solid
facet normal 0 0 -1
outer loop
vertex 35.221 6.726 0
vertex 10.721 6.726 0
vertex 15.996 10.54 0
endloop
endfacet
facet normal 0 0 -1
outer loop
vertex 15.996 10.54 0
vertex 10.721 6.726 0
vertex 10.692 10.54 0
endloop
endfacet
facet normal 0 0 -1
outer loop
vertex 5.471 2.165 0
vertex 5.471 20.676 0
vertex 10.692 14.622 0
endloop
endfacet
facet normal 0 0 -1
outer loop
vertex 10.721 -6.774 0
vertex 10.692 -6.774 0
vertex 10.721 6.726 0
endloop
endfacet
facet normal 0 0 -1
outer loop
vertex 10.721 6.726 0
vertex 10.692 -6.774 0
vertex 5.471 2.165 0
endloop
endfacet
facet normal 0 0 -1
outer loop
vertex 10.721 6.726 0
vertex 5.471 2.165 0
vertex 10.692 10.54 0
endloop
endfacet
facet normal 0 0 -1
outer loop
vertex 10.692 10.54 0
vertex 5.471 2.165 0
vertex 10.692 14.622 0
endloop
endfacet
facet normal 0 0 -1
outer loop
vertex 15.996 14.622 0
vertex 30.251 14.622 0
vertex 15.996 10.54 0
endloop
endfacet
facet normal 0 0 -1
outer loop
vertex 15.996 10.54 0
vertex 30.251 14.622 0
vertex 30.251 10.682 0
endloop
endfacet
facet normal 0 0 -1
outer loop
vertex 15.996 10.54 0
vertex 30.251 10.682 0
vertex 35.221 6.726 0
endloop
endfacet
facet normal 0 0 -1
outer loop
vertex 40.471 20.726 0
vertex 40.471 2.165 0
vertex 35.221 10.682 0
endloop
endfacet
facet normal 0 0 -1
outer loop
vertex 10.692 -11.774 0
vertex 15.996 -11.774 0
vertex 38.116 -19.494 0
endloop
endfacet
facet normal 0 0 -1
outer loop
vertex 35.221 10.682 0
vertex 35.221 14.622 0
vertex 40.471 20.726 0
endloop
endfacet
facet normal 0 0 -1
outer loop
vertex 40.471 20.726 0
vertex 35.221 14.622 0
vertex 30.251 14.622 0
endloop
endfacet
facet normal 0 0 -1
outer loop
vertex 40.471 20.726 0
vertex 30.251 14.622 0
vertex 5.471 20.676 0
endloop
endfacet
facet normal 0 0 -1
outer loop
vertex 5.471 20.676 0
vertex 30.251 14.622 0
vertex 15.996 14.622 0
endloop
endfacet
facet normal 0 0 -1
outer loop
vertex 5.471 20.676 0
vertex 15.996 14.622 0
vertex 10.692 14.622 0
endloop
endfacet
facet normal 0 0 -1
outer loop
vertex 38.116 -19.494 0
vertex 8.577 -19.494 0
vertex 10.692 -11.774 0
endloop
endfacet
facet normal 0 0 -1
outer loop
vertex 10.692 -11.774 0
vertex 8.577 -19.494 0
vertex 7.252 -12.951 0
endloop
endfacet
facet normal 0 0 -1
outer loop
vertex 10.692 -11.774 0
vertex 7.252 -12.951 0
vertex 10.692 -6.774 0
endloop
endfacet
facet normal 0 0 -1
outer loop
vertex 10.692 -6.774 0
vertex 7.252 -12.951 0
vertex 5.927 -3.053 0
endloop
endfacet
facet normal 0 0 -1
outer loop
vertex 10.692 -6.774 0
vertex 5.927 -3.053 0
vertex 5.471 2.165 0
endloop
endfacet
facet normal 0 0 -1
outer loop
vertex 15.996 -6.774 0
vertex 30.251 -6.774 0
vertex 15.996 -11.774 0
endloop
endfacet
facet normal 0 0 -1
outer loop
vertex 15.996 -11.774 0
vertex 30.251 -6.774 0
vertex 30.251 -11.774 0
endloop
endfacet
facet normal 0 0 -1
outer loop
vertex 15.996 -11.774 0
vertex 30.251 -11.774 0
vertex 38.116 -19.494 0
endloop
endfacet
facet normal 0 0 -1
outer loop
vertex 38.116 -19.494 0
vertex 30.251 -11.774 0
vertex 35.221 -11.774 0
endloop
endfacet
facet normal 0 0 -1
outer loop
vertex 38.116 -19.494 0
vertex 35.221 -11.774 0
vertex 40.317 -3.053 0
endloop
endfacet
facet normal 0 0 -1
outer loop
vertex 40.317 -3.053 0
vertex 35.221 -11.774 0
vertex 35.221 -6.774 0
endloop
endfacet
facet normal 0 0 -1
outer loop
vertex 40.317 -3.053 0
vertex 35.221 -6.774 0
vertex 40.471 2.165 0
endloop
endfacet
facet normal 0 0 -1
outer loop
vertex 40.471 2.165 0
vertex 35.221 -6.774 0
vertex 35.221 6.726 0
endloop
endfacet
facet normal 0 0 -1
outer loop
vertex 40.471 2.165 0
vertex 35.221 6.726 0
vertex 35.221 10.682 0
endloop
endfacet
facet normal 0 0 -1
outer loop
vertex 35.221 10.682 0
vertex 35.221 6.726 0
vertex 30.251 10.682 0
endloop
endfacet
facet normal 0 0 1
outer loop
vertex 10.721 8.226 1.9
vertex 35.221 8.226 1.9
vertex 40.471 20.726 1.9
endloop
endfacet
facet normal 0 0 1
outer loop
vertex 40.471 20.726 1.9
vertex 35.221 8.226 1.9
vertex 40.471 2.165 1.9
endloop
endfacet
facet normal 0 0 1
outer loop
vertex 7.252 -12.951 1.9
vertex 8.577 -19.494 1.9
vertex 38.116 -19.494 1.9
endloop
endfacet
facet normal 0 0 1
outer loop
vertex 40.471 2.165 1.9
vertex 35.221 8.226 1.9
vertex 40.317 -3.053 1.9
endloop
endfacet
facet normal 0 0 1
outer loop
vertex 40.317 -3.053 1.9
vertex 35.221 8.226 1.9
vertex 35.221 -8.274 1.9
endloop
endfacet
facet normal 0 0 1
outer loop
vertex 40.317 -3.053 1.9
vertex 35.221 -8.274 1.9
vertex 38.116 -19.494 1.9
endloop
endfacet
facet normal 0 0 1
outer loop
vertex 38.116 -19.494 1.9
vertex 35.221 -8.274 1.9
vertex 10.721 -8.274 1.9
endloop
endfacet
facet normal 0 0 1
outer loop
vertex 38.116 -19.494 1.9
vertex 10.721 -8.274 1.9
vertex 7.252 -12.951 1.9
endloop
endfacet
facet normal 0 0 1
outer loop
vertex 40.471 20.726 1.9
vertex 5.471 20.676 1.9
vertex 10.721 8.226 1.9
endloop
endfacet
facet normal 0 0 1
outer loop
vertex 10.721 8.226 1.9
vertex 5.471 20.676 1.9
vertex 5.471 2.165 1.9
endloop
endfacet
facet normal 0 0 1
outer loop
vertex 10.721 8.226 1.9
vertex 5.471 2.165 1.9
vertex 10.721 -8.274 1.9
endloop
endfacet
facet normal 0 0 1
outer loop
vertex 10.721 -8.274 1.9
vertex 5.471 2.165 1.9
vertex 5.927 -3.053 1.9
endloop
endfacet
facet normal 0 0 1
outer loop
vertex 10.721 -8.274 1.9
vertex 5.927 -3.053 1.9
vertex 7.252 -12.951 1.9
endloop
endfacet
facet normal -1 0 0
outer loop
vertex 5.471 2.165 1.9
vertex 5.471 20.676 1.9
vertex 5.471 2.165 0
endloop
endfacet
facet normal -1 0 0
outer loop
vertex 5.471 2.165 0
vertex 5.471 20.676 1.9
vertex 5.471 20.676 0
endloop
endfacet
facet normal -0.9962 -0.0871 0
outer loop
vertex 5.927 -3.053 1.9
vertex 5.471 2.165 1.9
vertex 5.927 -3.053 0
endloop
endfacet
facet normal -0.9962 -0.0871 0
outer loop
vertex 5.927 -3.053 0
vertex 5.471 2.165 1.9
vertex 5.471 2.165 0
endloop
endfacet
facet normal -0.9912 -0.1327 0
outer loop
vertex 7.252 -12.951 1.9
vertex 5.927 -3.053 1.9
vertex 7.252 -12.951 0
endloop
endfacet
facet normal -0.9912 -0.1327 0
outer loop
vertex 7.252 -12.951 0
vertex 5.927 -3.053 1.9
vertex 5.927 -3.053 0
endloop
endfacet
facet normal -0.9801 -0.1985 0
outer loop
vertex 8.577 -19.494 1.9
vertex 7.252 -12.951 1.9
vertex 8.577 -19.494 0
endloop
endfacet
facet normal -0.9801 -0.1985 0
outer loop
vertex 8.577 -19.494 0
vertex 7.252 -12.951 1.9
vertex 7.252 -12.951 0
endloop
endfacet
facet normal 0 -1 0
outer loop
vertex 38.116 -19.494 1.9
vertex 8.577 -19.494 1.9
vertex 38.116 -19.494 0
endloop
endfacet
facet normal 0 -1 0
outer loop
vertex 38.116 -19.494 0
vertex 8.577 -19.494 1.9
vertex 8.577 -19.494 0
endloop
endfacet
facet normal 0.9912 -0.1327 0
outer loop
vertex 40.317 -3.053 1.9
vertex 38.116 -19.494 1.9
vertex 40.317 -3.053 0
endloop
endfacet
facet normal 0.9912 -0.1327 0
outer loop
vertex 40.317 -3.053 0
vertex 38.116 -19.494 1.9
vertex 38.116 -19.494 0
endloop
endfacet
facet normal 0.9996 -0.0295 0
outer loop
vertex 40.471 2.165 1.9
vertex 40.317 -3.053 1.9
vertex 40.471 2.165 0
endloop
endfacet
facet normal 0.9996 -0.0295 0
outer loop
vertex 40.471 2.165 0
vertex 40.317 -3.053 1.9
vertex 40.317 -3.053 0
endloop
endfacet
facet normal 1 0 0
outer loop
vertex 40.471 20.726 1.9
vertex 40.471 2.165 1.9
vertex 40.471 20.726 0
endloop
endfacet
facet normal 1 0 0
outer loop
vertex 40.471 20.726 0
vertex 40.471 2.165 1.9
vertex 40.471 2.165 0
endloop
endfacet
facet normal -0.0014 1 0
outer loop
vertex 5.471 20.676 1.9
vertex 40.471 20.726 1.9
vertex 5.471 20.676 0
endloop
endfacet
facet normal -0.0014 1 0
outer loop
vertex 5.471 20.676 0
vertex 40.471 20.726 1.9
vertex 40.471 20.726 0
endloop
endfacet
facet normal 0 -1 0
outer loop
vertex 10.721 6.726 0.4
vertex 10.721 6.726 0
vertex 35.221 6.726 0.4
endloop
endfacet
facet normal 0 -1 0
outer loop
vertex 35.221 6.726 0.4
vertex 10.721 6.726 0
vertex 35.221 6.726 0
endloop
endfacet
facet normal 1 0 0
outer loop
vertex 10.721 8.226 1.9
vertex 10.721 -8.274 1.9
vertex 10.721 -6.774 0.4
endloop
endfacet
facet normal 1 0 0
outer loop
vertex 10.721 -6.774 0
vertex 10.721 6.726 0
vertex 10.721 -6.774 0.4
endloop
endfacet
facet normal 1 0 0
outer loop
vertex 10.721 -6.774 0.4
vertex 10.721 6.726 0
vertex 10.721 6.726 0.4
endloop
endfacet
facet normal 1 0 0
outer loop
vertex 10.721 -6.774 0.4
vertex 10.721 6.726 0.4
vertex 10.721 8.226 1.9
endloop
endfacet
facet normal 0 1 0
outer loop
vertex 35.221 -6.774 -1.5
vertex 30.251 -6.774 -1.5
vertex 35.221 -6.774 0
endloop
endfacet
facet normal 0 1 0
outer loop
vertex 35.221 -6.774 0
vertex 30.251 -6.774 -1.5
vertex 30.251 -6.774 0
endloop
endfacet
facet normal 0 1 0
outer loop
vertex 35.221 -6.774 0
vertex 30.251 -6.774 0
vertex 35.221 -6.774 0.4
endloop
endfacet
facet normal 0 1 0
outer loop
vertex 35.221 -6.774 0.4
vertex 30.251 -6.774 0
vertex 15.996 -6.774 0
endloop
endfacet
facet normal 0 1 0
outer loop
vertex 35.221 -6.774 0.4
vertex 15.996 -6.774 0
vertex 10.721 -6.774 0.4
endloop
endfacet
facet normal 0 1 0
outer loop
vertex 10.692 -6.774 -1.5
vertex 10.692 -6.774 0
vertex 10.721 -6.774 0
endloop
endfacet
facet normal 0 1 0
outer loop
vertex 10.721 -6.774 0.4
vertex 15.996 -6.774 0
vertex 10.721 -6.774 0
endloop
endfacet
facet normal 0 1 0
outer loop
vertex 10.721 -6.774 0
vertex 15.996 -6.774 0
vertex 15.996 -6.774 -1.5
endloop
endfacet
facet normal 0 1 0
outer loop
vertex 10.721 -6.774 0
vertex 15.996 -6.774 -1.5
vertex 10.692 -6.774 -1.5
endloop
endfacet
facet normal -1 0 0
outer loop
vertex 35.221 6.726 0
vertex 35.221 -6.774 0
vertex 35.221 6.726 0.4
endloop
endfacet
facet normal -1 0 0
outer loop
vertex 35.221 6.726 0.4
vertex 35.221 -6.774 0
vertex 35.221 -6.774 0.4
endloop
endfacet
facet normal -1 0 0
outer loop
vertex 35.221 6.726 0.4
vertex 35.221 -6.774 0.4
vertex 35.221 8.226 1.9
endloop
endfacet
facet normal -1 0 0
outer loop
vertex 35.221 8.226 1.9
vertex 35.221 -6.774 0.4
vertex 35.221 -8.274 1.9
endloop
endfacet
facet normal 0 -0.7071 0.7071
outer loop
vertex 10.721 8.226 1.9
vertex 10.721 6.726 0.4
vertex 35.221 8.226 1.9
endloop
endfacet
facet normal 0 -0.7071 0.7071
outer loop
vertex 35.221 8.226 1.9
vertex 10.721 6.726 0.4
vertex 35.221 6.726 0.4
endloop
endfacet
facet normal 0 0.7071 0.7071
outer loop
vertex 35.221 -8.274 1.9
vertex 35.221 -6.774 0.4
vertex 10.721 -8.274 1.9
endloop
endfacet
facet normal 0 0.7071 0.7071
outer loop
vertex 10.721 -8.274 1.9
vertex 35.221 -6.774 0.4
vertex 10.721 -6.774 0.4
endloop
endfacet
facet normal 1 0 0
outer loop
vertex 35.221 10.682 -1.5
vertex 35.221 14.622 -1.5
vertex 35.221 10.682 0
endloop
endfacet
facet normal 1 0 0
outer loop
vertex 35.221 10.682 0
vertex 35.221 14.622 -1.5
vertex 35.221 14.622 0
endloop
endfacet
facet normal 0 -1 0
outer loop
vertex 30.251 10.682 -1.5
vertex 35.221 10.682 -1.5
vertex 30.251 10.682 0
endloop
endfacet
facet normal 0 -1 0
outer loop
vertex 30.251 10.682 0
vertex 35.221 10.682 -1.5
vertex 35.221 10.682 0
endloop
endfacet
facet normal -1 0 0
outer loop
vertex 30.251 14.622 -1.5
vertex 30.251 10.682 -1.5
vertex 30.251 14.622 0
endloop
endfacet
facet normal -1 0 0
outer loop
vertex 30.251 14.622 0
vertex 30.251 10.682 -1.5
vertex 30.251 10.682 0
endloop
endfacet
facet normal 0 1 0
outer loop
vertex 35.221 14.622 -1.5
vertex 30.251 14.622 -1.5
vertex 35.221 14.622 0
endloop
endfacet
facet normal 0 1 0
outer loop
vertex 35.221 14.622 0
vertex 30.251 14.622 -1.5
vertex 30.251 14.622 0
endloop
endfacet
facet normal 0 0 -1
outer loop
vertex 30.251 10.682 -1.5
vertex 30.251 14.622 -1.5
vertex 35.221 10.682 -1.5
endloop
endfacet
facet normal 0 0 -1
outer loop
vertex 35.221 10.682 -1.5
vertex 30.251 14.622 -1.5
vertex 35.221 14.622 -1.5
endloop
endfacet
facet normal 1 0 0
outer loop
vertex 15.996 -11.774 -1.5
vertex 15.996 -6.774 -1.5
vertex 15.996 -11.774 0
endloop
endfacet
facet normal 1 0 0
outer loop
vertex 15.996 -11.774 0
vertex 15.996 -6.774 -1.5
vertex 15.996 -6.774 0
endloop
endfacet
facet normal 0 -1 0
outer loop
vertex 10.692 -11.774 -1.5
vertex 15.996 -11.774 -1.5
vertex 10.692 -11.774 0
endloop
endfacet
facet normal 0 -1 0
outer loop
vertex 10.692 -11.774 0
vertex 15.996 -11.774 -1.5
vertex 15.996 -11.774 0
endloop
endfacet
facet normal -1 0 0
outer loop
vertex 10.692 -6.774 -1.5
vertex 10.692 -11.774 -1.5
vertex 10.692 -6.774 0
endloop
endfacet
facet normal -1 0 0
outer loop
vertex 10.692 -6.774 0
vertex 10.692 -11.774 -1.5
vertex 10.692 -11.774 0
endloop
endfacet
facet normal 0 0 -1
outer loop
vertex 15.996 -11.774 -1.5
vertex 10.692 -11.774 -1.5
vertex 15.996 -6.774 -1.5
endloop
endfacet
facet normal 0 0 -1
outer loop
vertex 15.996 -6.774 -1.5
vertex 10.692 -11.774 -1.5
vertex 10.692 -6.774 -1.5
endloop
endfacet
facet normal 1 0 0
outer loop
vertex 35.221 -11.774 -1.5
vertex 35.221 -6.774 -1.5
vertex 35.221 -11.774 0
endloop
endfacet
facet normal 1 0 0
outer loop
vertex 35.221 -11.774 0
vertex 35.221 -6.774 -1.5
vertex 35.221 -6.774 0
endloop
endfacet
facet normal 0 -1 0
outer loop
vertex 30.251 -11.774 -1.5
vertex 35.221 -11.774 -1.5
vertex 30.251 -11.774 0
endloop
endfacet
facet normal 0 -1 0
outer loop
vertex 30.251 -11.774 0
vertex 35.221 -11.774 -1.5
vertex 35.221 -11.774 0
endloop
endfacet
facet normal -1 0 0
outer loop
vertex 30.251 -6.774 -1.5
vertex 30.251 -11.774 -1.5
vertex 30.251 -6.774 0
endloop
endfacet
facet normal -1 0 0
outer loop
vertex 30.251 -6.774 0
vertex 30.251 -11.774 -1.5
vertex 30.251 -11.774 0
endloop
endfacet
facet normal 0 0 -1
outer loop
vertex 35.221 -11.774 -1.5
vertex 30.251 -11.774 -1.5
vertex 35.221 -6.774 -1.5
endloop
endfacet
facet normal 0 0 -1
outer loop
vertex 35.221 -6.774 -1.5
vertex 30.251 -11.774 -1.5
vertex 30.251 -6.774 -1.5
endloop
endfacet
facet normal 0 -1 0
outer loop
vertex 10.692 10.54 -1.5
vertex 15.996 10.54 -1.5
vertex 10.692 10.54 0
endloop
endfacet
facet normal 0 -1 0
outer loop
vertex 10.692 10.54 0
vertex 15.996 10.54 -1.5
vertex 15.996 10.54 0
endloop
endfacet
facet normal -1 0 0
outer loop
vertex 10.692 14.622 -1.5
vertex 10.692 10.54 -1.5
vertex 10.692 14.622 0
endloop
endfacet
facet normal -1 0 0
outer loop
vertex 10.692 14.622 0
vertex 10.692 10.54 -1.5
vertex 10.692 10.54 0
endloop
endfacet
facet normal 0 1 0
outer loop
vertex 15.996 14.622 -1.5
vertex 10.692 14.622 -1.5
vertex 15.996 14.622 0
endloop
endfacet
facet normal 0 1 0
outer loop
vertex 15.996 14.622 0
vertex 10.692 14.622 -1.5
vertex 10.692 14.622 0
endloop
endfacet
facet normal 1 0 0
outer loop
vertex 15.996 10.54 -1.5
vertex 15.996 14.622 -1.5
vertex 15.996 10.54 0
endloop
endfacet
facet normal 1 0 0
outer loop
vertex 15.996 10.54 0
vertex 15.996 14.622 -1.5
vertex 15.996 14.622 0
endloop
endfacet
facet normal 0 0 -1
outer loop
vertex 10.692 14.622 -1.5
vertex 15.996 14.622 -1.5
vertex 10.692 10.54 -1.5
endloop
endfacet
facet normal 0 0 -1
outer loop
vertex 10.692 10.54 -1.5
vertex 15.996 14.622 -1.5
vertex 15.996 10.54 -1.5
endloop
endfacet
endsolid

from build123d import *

# Parameters (mm, degrees)
SKETCH1_W           = 24.499964053
SKETCH1_H           = 13.5
BOSS_EXTRUDE1_DEPTH = 1.9
CHAMFER2_SIZE       = 1.5
SKETCH3_W           = 4.970239213
SKETCH3_H           = 5
SKETCH3_W_2         = 5.304118475
SKETCH3_H_2         = 3.940048439
SKETCH3_H_3         = 4.081751912
BOSS_EXTRUDE4_DEPTH = 1.5


with BuildPart() as part:
    # Sketch1 → Boss-Extrude1 (new body)
    with BuildSketch(Plane.XY):
        Polygon((5.471235903, 20.676320824), (40.471199956, 20.726483376), (40.471199956, 2.164736428), (40.316871719, -3.053294073), (39.006131301, -12.842886574), (38.115574665, -19.494231445), (37.577206439, -19.494231445), (8.577206439, -19.494231445), (7.251992344, -12.950986849), (5.926778248, -3.053294073), (5.471235903, 2.164736428), align=None)
        with Locations((22.971217929, -0.023516624)):
            Rectangle(SKETCH1_W, SKETCH1_H, mode=Mode.SUBTRACT)
    extrude(amount=BOSS_EXTRUDE1_DEPTH)

    # Chamfer2
    chamfer2_edges = [part.edges().sort_by_distance(p)[0] for p in [
        (22.971217929, 6.726483376, 1.9),
        (22.971217929, -6.773516624, 1.9),
    ]]
    chamfer(chamfer2_edges, length=CHAMFER2_SIZE)

    # Sketch3 → Boss-Extrude4 (add)
    with BuildSketch(Plane(origin=(0, 0, 0), x_dir=(-1, 0, 0), z_dir=(0, 0, -1))):
        with Locations((-32.736080349, -9.273516624)):
            Rectangle(SKETCH3_W, SKETCH3_H)
        with Locations((-13.343741273, -9.273516624)):
            Rectangle(SKETCH3_W_2, SKETCH3_H)
        with Locations((-32.736080349, 12.652087829)):
            Rectangle(SKETCH3_W, SKETCH3_H_2)
        with Locations((-13.343741273, 12.581236092)):
            Rectangle(SKETCH3_W_2, SKETCH3_H_3)
    extrude(amount=BOSS_EXTRUDE4_DEPTH)


solid = part.part
